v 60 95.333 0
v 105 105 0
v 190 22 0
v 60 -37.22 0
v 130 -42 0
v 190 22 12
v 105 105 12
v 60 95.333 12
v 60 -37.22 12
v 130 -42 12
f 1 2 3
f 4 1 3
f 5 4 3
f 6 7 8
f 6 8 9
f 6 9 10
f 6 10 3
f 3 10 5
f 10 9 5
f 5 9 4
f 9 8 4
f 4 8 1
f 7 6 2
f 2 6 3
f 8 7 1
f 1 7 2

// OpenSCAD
polyhedron(points=[[190.0, 22.0, 0.0], [130.0, -42.0, 0.0], [60.0, -37.219512, 0.0], [60.0, 95.333333, 0.0], [105.0, 105.0, 0.0], [190.0, 22.0, 12.0], [130.0, -42.0, 12.0], [60.0, -37.219512, 12.0], [60.0, 95.333333, 12.0], [105.0, 105.0, 12.0]], faces=[[3, 4, 0], [2, 3, 0], [1, 2, 0], [5, 9, 8], [5, 8, 7], [5, 7, 6], [5, 6, 0], [0, 6, 1], [6, 7, 1], [1, 7, 2], [7, 8, 2], [2, 8, 3], [9, 5, 4], [4, 5, 0], [8, 9, 3], [3, 9, 4]], convexity=30);
